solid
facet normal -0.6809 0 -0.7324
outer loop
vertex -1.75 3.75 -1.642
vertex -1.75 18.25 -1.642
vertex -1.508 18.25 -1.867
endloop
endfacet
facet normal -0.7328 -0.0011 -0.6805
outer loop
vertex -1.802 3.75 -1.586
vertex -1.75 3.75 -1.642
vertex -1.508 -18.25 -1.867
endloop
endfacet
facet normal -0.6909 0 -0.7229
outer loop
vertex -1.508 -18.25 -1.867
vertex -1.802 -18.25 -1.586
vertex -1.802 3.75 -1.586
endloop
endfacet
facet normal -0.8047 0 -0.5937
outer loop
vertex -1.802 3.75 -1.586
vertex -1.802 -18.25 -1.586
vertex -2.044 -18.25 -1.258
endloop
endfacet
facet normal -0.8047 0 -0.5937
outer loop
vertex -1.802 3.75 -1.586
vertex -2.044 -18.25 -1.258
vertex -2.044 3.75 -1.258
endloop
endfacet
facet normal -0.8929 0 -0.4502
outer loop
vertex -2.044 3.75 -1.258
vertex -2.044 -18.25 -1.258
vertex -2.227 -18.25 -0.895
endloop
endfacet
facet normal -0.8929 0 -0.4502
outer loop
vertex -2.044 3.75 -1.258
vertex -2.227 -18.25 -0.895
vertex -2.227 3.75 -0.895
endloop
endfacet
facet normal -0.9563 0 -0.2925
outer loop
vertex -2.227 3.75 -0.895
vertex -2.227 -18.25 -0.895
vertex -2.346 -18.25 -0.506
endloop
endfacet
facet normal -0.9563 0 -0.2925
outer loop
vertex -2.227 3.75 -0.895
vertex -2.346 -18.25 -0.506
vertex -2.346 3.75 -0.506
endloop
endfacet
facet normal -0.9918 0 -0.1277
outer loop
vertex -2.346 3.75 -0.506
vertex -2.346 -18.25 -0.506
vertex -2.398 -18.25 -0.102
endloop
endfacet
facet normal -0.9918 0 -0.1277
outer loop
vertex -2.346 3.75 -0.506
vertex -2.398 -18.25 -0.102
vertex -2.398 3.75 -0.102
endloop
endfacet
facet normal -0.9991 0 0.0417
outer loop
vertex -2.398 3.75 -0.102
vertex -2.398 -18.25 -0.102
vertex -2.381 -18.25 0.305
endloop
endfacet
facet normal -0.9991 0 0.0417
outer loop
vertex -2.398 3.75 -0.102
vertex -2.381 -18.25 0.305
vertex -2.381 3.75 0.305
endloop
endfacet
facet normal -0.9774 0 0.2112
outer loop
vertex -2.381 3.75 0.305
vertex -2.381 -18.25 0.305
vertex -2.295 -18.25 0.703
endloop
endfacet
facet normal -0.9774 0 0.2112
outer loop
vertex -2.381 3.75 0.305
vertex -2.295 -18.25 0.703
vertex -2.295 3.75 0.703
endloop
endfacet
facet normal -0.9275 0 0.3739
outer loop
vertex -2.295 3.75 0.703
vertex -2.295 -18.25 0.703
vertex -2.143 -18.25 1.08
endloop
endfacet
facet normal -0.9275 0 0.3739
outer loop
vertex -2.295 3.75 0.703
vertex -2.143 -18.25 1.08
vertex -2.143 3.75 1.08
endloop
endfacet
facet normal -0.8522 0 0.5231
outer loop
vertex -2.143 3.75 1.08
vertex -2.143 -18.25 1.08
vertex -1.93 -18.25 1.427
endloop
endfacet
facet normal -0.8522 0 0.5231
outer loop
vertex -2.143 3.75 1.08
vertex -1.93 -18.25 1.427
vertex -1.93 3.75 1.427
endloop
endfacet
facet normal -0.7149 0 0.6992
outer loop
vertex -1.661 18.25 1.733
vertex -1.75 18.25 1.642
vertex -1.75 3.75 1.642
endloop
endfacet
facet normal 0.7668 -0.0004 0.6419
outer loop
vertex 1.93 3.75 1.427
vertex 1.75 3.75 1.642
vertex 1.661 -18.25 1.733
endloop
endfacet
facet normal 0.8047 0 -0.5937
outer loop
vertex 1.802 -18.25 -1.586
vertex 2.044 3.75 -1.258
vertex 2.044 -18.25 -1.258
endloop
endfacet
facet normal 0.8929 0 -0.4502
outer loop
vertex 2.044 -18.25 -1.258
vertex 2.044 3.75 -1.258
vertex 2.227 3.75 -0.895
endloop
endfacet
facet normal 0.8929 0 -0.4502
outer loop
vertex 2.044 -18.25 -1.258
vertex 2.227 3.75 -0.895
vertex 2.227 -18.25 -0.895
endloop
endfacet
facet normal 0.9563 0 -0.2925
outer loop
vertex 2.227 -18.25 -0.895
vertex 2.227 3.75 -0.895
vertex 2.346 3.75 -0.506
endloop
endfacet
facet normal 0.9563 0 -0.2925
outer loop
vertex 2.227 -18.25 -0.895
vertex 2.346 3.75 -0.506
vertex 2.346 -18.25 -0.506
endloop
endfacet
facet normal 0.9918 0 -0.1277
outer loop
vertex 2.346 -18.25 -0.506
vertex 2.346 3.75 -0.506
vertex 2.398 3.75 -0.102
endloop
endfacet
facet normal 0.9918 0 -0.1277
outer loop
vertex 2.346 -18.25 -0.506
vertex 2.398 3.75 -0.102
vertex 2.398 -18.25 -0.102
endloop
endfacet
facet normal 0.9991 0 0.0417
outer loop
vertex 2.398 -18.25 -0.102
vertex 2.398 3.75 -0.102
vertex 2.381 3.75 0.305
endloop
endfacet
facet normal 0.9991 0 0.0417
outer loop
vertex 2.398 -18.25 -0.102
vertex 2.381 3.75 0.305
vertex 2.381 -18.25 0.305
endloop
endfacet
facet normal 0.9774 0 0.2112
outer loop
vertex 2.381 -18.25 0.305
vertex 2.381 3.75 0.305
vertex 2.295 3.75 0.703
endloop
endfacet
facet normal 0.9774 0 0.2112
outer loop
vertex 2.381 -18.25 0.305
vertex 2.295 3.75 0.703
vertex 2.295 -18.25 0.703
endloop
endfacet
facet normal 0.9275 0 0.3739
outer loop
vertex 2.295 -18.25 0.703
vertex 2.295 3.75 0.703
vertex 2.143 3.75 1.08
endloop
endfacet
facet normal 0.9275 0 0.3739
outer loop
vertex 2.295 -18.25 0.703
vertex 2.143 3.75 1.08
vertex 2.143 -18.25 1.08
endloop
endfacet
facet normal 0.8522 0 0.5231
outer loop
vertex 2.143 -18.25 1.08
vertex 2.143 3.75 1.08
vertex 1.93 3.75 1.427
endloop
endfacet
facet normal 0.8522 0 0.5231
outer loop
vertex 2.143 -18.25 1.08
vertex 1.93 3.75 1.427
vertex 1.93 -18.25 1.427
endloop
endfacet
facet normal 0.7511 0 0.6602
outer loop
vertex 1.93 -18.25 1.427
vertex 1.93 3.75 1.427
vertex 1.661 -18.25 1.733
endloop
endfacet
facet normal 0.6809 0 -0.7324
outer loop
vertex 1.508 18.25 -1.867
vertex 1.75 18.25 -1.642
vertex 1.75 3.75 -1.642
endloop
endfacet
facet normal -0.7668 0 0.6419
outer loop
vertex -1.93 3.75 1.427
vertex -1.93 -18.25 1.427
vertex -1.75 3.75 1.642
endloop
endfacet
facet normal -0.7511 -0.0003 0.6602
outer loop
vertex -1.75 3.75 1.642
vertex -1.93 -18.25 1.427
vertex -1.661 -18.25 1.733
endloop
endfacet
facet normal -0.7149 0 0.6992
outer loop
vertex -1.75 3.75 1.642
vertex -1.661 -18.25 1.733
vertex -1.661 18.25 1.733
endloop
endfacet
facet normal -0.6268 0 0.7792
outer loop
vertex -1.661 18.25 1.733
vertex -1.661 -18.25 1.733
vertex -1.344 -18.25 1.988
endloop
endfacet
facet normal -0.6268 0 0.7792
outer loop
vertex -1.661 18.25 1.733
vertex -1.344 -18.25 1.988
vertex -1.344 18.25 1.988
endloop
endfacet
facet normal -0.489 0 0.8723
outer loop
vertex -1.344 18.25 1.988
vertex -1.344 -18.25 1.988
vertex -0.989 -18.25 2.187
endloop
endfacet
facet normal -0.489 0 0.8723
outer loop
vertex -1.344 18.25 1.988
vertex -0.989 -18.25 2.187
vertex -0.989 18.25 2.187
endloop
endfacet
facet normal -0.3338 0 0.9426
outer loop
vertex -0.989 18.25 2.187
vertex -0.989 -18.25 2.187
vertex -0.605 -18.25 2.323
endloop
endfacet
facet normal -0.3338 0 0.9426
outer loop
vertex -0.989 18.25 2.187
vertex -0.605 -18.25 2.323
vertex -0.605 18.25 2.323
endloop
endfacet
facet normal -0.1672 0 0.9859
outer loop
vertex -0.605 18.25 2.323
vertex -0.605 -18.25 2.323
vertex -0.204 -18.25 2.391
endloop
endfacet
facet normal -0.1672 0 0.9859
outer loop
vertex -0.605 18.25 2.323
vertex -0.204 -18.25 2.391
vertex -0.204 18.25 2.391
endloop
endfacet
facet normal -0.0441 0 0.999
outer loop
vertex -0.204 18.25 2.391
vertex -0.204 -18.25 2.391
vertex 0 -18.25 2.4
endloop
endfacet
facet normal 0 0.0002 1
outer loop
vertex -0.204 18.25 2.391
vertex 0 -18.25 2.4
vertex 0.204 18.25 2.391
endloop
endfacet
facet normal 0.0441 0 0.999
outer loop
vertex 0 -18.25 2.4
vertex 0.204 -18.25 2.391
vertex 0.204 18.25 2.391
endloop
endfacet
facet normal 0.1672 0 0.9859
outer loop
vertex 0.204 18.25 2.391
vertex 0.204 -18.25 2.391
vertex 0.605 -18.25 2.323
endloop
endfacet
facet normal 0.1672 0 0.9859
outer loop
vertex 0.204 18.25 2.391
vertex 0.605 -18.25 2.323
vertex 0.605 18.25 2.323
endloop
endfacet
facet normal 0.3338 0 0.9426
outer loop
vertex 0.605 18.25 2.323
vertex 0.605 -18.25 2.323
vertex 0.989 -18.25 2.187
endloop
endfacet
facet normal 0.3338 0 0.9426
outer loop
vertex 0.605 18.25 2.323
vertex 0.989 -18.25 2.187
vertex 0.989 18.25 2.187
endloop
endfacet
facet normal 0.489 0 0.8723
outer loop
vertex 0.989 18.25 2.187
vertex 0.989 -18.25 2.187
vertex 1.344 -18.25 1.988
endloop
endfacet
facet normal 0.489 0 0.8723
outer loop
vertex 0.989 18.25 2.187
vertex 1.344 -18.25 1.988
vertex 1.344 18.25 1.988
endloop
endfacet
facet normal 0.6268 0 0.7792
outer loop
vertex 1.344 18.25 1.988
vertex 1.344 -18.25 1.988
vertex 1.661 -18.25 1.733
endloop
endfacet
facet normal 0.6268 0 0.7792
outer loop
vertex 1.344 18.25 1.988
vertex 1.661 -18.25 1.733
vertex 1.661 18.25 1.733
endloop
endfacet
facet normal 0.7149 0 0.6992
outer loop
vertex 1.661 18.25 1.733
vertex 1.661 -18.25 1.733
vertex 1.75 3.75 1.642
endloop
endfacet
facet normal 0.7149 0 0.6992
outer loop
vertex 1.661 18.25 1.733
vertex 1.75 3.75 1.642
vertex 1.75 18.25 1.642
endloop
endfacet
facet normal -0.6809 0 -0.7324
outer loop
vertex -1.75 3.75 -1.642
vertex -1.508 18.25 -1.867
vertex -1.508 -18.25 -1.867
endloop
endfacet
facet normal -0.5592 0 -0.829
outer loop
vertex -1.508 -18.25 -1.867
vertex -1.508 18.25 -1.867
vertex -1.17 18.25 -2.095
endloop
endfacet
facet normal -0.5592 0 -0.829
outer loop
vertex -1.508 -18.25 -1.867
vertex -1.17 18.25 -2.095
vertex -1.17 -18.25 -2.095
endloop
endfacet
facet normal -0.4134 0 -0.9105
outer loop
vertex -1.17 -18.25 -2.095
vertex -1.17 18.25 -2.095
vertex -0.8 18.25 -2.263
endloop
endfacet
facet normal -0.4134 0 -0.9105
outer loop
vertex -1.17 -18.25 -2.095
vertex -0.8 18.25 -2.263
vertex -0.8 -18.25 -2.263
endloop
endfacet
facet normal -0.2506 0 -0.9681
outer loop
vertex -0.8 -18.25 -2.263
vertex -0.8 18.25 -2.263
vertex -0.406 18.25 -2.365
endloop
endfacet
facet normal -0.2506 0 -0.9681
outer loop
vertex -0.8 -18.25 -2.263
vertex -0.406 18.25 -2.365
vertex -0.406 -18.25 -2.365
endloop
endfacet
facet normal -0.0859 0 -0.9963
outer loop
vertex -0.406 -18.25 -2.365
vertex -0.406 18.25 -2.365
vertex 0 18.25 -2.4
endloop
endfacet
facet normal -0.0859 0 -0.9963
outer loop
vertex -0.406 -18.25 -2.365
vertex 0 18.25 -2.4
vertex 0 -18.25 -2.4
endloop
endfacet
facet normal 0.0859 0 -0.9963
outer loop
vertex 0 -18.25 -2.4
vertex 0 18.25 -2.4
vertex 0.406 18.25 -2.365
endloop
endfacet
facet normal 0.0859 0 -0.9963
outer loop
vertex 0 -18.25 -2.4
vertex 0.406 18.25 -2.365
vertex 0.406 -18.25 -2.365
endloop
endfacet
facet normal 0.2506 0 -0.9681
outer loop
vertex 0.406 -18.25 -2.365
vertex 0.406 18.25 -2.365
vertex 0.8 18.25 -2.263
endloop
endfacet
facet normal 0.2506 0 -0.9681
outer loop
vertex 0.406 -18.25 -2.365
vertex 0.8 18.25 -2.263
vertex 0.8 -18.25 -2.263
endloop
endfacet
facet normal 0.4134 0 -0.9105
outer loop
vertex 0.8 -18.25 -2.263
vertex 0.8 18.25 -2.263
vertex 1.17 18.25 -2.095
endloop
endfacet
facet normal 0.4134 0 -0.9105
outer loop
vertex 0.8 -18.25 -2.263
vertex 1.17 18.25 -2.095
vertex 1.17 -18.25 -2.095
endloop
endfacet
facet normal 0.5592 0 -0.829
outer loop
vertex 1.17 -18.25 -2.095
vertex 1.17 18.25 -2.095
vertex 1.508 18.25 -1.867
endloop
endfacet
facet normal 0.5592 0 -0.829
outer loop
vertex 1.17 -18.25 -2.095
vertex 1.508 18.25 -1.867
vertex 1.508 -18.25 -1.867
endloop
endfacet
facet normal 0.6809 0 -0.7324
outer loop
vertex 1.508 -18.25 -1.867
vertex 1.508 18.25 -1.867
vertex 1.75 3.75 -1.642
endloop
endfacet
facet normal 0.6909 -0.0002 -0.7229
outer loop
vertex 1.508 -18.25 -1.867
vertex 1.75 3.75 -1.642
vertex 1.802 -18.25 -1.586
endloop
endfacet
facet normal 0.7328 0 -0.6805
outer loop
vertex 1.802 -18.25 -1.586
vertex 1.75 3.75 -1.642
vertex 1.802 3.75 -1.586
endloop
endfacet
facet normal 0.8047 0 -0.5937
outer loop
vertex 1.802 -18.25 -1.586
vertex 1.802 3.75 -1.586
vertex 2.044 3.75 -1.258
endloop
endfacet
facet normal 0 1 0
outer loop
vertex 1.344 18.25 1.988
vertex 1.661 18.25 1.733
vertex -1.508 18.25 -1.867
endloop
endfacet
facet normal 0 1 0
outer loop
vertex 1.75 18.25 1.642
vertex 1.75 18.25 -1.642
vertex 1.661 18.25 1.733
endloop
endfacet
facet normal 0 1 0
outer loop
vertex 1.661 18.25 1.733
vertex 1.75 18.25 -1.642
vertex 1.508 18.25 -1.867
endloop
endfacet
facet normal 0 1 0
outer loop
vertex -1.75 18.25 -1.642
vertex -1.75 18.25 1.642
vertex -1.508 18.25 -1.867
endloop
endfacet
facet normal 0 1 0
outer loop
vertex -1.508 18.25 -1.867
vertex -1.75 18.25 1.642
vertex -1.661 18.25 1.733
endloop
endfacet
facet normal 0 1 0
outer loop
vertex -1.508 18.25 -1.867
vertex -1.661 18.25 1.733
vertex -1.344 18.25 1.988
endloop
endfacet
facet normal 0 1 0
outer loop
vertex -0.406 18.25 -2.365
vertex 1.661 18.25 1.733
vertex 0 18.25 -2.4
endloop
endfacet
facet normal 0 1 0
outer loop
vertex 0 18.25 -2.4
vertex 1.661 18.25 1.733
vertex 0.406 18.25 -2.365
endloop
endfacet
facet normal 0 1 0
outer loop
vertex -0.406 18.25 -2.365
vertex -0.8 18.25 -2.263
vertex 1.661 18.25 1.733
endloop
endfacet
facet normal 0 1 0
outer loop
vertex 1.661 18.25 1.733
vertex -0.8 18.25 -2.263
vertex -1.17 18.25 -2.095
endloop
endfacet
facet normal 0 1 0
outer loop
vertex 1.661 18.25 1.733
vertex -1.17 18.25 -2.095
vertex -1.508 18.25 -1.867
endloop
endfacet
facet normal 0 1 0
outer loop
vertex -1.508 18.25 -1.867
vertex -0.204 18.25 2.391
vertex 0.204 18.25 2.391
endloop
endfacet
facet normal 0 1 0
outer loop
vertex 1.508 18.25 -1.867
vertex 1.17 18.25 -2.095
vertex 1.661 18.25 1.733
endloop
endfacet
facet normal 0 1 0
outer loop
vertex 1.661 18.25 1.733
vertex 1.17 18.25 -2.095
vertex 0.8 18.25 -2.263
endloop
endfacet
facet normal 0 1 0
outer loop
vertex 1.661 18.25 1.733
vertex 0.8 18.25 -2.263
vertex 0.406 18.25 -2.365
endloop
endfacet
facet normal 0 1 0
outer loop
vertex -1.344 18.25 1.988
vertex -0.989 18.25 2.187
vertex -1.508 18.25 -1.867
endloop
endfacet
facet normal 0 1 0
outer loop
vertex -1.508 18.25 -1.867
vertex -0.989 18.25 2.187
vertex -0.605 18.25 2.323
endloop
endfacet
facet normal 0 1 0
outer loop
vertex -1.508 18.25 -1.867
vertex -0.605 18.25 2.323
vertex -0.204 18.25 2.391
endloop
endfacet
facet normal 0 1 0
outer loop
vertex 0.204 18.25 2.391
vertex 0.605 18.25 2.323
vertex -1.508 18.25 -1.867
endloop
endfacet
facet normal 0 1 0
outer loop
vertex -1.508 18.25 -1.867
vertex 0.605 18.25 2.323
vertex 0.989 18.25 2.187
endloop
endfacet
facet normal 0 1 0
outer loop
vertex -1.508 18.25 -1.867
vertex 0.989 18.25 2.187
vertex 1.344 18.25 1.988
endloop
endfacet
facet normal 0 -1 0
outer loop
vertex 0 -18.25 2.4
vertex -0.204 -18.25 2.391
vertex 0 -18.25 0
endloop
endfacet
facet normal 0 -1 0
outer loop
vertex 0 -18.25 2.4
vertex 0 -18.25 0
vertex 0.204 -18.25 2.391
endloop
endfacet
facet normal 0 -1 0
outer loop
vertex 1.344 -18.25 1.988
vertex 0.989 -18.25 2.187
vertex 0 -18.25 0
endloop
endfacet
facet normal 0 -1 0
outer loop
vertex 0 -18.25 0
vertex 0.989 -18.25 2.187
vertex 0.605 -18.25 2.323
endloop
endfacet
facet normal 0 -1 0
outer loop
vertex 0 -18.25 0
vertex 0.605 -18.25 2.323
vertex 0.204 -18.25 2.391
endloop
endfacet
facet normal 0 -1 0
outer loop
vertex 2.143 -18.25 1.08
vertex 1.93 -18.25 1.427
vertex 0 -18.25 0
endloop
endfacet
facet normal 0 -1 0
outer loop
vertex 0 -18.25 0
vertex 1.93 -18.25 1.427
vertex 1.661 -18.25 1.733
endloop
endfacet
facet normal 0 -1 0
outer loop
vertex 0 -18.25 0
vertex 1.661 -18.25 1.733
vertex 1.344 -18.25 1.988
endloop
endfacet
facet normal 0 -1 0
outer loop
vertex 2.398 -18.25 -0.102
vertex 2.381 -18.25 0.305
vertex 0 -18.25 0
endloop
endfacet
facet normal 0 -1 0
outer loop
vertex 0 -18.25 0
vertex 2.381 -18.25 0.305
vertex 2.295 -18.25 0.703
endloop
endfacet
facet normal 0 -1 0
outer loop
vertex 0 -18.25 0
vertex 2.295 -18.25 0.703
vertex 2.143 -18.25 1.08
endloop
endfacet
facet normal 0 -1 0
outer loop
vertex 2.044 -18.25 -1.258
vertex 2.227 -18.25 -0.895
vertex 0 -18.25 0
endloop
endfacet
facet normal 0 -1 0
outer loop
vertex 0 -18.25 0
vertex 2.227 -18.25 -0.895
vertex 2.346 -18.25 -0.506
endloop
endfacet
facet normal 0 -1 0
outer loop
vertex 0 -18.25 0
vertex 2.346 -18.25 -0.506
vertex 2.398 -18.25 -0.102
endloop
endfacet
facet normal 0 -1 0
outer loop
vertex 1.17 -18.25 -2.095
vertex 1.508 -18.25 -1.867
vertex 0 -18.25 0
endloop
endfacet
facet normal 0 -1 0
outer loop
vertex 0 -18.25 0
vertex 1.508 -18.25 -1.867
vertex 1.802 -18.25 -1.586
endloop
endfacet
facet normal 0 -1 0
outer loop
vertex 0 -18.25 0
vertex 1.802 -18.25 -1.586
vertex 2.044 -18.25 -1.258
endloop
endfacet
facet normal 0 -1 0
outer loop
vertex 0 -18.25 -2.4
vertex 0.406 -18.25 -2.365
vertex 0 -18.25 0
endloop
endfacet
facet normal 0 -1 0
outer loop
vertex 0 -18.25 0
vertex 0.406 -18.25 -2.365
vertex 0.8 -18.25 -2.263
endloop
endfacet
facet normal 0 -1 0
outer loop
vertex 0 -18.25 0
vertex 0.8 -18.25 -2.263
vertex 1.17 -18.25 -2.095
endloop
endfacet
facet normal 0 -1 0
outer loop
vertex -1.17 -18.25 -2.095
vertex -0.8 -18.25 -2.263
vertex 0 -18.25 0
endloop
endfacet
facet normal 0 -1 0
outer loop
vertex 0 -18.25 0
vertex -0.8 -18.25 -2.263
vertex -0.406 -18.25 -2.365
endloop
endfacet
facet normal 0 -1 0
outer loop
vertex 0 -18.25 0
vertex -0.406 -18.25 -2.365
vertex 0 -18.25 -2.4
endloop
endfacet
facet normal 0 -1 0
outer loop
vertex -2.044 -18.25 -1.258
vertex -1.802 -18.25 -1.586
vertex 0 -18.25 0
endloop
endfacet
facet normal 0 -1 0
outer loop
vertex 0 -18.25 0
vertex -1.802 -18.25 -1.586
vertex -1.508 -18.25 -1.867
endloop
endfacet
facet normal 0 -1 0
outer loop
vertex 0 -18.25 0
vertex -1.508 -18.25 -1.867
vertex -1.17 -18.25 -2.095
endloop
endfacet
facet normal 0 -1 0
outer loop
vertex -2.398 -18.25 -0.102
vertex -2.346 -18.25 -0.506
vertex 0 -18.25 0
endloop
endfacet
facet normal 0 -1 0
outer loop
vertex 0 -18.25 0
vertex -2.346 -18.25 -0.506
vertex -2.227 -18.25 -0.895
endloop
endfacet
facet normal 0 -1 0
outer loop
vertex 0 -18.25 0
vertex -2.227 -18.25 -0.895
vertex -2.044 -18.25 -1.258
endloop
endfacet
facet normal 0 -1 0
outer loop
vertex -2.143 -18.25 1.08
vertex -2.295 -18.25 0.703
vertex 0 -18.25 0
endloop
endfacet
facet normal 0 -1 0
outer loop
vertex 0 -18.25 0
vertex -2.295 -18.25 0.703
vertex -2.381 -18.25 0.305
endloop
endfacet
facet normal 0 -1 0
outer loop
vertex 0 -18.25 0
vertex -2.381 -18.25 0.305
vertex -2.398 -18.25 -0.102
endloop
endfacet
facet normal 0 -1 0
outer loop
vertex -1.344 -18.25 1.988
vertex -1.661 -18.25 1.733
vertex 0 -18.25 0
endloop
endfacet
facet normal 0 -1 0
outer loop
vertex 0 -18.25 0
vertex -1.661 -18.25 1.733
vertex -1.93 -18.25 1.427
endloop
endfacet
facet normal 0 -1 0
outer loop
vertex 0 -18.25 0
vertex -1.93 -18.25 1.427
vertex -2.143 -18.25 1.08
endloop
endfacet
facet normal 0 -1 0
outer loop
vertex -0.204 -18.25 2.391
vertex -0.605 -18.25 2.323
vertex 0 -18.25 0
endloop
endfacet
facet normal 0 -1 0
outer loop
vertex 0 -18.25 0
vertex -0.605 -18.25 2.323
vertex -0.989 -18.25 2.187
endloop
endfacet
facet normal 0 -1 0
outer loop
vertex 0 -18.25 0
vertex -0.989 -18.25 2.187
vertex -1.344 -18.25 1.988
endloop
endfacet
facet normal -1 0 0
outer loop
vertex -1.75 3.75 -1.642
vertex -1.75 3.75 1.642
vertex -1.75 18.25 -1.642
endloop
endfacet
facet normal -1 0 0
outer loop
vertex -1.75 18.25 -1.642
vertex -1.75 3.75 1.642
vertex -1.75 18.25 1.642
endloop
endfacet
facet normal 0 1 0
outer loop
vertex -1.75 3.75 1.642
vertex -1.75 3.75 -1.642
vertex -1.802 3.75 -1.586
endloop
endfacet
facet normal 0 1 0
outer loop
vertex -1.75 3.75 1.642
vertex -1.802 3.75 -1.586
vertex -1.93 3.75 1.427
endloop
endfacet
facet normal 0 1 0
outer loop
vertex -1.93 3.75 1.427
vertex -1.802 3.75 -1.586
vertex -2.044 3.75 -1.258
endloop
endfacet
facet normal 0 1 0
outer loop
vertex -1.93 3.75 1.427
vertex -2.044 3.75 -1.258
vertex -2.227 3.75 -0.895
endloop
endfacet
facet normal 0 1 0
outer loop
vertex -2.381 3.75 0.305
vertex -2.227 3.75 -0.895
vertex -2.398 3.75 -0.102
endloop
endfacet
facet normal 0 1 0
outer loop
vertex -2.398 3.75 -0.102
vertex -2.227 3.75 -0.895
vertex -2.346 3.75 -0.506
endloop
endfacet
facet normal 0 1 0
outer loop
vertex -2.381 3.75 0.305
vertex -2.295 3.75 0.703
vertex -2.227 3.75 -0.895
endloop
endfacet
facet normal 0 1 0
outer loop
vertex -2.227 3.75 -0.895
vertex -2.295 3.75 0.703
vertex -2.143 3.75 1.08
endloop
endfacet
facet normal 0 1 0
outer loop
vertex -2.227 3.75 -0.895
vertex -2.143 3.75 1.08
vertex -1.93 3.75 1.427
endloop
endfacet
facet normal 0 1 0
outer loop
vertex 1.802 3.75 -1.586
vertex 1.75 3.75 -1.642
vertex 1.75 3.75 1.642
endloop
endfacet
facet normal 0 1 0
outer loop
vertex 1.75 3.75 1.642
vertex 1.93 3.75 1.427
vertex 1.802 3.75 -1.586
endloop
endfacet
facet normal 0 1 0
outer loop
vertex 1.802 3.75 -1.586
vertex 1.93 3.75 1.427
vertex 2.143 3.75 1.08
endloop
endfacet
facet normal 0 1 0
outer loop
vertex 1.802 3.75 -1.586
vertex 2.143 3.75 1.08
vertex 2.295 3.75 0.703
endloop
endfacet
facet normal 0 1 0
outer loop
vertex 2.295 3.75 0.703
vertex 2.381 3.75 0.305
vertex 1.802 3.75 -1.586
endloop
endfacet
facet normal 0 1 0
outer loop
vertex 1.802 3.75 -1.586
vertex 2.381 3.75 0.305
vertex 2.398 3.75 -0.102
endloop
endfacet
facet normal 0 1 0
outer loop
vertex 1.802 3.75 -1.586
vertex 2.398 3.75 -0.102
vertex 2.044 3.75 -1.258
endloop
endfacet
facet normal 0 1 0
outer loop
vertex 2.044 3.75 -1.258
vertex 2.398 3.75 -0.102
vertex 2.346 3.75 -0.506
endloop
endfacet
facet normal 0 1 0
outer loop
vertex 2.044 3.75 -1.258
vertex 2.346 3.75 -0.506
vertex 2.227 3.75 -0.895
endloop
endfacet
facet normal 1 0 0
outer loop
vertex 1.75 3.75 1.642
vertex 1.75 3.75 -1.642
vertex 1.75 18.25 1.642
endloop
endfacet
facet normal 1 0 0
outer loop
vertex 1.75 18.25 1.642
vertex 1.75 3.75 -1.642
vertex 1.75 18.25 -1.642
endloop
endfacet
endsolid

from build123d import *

# Parameters (mm, degrees)
CROQUIS2_R                   = 2.4
SALIENTE_EXTRUIR1_DEPTH      = 18.25
CORTAR_EXTRUIR_L_MINA1_DEPTH = 14.5


with BuildPart() as part:
    # Croquis2 → Saliente-Extruir1 (new, symmetric)
    with BuildSketch(Plane(origin=(0, 0, 0), x_dir=(1, 0, 0), z_dir=(0, 1, 0))):
        with Locations(Location((0, 0, 0), (0, 0, 270))):
            Circle(CROQUIS2_R)
    extrude(amount=SALIENTE_EXTRUIR1_DEPTH, both=True)

    # Croquis3 → Cortar-Extruir-Lámina1 (cut)
    with BuildSketch(Plane(origin=(0, 18.25, 0), x_dir=(1, 0, 0), z_dir=(0, 1, 0))):
        with BuildLine():
            Line((-11.75, 3.962007067), (-11.75, -3.962007067))
            ThreePointArc((-11.75, -3.962007067), (0, -12.4), (11.75, -3.962007067))
            Line((11.75, -3.962007067), (11.75, 3.962007067))
            ThreePointArc((11.75, 3.962007067), (0, 12.4), (-11.75, 3.962007067))
        make_face()
        with BuildLine():
            Line((-1.75, 1.642406771), (-1.75, -1.642406771))
            ThreePointArc((-1.75, -1.642406771), (0, -2.4), (1.75, -1.642406771))
            Line((1.75, -1.642406771), (1.75, 1.642406771))
            ThreePointArc((1.75, 1.642406771), (0, 2.4), (-1.75, 1.642406771))
        make_face(mode=Mode.SUBTRACT)
    extrude(amount=-CORTAR_EXTRUIR_L_MINA1_DEPTH, mode=Mode.SUBTRACT)


solid = part.part
